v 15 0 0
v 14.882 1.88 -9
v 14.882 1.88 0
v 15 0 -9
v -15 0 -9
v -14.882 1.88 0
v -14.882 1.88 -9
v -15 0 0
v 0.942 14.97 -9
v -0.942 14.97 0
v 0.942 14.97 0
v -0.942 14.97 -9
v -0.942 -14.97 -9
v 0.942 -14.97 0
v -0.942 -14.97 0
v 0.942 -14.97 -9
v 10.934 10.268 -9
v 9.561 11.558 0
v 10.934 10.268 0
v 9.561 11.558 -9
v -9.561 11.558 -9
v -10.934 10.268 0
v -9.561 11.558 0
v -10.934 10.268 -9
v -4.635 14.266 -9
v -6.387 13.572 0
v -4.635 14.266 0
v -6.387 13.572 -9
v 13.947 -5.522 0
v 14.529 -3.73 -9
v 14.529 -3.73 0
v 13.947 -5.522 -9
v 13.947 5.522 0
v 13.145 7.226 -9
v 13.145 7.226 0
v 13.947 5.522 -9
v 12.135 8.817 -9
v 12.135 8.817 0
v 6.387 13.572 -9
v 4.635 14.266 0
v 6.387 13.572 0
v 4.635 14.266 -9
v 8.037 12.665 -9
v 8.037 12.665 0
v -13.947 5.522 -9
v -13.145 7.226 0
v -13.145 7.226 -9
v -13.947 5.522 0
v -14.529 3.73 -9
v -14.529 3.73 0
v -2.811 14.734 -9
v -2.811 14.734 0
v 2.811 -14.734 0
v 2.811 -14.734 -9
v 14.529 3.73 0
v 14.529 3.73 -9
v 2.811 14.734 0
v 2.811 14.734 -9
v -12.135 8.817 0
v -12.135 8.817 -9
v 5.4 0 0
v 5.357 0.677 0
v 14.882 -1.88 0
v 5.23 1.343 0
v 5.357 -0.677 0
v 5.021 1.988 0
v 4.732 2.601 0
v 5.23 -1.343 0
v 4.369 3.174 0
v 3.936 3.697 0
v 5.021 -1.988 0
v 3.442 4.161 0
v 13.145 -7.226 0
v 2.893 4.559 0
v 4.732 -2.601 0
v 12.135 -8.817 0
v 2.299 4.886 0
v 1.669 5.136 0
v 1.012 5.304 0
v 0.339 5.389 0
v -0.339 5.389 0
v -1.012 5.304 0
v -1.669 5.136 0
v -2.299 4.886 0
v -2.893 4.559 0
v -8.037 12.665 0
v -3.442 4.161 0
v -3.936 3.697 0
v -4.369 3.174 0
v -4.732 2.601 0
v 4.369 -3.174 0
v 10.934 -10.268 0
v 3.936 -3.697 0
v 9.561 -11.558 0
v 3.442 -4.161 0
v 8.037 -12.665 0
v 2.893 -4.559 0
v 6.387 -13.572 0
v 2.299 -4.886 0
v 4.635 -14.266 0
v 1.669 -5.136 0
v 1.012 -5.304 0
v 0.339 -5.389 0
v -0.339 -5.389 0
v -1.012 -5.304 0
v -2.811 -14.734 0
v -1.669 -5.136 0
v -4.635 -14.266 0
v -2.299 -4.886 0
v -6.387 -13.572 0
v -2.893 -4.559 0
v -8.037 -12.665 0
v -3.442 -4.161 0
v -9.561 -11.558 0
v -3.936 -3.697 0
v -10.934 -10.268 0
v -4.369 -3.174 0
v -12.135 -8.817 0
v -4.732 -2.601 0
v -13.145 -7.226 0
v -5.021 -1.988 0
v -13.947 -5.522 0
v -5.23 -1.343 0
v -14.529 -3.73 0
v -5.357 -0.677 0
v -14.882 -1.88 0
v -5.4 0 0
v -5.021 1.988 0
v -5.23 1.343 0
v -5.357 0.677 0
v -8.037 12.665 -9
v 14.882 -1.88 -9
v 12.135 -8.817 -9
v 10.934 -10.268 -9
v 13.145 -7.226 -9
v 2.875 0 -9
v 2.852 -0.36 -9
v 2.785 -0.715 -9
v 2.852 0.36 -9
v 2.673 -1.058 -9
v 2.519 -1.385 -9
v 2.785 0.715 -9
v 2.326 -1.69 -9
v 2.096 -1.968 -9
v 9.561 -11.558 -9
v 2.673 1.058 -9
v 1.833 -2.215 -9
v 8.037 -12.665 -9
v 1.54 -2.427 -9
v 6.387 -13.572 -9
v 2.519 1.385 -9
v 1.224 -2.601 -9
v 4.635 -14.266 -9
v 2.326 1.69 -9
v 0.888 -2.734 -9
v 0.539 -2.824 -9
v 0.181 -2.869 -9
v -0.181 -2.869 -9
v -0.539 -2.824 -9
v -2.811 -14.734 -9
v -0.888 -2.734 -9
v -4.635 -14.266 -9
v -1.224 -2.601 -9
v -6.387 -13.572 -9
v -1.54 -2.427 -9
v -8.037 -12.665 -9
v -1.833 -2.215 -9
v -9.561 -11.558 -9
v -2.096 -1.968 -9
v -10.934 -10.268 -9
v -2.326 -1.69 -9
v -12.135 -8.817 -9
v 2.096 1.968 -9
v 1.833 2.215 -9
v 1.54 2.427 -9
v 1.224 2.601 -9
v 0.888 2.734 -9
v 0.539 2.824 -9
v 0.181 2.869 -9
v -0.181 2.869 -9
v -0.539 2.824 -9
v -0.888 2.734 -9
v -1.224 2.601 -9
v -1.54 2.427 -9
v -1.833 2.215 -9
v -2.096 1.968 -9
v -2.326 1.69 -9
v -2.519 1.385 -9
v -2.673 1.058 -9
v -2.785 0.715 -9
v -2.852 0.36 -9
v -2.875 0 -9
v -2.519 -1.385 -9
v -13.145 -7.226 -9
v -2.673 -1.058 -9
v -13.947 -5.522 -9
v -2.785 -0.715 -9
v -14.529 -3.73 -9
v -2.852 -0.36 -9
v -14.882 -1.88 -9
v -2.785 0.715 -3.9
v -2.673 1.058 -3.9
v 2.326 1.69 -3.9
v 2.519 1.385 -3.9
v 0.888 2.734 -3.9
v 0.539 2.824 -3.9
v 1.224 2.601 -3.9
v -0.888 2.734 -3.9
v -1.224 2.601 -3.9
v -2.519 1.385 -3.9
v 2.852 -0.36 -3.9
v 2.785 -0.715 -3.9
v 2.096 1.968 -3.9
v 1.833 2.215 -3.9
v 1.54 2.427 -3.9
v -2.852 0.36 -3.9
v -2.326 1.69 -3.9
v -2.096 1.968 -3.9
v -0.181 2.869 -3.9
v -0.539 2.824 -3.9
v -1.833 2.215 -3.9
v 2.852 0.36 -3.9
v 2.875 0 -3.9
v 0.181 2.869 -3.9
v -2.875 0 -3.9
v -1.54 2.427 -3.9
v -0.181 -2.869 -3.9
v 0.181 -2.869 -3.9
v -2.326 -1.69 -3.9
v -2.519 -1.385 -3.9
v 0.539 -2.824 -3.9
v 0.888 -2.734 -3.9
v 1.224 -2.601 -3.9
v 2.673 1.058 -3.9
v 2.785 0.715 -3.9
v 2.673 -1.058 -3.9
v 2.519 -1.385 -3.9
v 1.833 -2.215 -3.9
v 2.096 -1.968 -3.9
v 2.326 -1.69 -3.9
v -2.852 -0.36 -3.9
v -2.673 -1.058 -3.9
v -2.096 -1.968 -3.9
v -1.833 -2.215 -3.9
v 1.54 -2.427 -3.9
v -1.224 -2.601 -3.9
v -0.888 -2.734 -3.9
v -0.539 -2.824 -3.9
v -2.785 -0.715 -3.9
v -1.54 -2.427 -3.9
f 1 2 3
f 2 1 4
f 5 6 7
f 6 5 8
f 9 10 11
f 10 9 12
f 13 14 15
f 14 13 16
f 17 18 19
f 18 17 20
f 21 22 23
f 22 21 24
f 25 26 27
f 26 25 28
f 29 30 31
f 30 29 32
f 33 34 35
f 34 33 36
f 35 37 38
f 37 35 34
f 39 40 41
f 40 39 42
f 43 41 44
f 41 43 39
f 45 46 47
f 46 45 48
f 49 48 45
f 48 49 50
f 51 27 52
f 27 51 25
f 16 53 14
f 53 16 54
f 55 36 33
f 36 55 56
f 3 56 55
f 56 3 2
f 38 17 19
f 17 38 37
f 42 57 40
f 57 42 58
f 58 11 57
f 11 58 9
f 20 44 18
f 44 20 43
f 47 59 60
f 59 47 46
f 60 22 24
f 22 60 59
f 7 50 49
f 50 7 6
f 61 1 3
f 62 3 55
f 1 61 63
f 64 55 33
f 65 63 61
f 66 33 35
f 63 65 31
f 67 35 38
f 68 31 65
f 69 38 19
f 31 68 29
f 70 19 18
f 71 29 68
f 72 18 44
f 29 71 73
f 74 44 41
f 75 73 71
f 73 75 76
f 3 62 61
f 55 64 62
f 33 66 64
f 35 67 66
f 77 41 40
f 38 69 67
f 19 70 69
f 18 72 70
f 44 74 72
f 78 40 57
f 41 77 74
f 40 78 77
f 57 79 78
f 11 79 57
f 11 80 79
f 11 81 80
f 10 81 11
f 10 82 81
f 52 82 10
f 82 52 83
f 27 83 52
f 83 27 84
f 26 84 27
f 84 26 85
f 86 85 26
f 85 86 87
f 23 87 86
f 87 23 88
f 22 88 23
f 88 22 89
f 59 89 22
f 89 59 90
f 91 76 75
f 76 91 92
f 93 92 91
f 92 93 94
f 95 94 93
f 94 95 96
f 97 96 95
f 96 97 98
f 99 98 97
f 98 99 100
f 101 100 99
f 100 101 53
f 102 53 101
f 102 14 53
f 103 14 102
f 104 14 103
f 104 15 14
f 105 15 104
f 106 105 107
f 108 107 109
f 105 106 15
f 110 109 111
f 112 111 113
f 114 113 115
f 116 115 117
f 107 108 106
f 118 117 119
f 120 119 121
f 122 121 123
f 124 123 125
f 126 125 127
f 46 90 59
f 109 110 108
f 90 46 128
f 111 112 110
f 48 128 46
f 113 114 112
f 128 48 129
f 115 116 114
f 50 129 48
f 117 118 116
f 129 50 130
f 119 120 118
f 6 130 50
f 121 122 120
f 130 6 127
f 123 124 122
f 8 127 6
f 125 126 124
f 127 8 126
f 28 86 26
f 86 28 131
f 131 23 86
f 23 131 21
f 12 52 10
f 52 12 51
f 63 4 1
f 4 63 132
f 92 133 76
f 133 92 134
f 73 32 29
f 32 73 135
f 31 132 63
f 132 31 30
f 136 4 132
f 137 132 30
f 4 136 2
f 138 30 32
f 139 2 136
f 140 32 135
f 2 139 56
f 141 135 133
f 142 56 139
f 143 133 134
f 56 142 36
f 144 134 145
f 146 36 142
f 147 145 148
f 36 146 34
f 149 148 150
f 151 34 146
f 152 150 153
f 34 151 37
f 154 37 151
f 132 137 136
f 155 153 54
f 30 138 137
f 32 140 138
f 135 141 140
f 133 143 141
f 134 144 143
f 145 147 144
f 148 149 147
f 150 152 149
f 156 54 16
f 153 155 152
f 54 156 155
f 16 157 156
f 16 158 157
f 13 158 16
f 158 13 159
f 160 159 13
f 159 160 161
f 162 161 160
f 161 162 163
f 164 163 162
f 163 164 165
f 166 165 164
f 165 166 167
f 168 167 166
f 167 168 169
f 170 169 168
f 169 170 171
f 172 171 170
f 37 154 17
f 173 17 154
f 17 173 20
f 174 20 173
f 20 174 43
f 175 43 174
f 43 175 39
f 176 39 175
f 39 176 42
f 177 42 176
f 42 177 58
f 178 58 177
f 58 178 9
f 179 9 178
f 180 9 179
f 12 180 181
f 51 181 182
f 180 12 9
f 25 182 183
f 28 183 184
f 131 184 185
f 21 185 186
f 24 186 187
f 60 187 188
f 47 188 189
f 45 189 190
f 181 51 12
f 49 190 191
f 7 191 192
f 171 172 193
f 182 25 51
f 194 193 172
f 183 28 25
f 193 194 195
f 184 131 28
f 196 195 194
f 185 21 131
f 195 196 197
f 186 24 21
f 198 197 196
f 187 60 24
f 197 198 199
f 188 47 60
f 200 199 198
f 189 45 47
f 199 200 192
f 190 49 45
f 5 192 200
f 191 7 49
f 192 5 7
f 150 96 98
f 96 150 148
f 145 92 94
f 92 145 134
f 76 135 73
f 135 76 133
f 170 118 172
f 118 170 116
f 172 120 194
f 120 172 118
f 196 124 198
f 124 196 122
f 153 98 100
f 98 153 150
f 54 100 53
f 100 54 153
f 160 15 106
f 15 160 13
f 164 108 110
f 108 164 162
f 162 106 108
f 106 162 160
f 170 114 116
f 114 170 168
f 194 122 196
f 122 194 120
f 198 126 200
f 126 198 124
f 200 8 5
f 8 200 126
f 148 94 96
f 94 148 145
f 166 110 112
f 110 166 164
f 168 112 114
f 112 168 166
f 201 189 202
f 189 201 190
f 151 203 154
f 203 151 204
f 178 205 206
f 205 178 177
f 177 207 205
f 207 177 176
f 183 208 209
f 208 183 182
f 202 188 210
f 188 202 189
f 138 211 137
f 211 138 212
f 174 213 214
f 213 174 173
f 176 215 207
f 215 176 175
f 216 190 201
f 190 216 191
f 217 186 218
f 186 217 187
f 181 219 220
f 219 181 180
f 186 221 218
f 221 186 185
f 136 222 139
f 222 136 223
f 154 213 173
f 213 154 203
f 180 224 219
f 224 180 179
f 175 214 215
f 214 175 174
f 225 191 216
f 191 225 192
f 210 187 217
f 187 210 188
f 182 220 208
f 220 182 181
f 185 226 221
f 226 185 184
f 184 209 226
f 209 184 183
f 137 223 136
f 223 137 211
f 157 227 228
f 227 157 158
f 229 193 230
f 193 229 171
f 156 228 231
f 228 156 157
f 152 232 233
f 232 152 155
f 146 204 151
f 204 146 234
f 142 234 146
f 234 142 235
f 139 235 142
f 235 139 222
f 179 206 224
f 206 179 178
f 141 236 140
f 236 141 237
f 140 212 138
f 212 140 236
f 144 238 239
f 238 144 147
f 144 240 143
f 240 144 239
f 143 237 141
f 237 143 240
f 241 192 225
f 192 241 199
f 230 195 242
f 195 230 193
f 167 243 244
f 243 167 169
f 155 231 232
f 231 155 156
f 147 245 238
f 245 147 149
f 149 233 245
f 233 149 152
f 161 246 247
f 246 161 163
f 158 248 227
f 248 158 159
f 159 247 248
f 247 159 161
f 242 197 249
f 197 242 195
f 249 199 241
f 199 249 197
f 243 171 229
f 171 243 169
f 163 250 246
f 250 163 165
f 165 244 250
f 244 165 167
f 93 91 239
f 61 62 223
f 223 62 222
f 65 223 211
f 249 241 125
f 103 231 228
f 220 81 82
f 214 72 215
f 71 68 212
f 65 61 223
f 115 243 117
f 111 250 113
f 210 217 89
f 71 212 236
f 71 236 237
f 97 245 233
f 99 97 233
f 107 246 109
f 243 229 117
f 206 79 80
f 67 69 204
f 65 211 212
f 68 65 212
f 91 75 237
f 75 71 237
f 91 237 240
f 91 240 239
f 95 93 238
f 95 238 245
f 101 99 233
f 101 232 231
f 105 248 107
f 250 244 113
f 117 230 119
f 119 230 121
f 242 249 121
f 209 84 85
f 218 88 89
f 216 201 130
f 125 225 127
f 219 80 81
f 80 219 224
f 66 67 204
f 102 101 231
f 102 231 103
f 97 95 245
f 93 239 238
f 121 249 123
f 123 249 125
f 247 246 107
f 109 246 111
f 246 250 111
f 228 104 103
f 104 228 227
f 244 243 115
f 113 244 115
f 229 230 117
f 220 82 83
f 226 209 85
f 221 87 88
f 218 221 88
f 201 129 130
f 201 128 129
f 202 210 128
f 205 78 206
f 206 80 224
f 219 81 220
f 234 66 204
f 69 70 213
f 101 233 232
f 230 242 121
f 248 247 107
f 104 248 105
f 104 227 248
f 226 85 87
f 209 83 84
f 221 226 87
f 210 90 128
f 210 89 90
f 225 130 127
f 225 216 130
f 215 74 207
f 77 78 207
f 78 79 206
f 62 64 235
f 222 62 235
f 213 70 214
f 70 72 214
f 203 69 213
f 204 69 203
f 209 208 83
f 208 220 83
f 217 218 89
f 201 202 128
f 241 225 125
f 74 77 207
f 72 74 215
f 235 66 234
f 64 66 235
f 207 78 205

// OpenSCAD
$fn = 50;


difference() {
	union() {
		translate(v = [0, 0, -9.0000000000]) {
			cylinder(h = 9, r = 15.0000000000);
		}
		translate(v = [0, 0, -12.0000000000]) {
			cylinder(h = 12, r = 2.8750000000);
		}
	}
	union() {
		translate(v = [0, 0, 0]) {
			rotate(a = [0, 0, 0]) {
				difference() {
					union() {
						translate(v = [0, 0, -12.0000000000]) {
							cylinder(h = 12, r = 2.6000000000);
						}
						translate(v = [0, 0, -3.9000000000]) {
							cylinder(h = 3.9000000000, r1 = 2.8750000000, r2 = 5.4000000000);
						}
						translate(v = [0, 0, -12.0000000000]) {
							cylinder(h = 12, r = 2.8750000000);
						}
						translate(v = [0, 0, -12.0000000000]) {
							cylinder(h = 12, r = 2.6000000000);
						}
					}
					union();
				}
			}
		}
	}
}
